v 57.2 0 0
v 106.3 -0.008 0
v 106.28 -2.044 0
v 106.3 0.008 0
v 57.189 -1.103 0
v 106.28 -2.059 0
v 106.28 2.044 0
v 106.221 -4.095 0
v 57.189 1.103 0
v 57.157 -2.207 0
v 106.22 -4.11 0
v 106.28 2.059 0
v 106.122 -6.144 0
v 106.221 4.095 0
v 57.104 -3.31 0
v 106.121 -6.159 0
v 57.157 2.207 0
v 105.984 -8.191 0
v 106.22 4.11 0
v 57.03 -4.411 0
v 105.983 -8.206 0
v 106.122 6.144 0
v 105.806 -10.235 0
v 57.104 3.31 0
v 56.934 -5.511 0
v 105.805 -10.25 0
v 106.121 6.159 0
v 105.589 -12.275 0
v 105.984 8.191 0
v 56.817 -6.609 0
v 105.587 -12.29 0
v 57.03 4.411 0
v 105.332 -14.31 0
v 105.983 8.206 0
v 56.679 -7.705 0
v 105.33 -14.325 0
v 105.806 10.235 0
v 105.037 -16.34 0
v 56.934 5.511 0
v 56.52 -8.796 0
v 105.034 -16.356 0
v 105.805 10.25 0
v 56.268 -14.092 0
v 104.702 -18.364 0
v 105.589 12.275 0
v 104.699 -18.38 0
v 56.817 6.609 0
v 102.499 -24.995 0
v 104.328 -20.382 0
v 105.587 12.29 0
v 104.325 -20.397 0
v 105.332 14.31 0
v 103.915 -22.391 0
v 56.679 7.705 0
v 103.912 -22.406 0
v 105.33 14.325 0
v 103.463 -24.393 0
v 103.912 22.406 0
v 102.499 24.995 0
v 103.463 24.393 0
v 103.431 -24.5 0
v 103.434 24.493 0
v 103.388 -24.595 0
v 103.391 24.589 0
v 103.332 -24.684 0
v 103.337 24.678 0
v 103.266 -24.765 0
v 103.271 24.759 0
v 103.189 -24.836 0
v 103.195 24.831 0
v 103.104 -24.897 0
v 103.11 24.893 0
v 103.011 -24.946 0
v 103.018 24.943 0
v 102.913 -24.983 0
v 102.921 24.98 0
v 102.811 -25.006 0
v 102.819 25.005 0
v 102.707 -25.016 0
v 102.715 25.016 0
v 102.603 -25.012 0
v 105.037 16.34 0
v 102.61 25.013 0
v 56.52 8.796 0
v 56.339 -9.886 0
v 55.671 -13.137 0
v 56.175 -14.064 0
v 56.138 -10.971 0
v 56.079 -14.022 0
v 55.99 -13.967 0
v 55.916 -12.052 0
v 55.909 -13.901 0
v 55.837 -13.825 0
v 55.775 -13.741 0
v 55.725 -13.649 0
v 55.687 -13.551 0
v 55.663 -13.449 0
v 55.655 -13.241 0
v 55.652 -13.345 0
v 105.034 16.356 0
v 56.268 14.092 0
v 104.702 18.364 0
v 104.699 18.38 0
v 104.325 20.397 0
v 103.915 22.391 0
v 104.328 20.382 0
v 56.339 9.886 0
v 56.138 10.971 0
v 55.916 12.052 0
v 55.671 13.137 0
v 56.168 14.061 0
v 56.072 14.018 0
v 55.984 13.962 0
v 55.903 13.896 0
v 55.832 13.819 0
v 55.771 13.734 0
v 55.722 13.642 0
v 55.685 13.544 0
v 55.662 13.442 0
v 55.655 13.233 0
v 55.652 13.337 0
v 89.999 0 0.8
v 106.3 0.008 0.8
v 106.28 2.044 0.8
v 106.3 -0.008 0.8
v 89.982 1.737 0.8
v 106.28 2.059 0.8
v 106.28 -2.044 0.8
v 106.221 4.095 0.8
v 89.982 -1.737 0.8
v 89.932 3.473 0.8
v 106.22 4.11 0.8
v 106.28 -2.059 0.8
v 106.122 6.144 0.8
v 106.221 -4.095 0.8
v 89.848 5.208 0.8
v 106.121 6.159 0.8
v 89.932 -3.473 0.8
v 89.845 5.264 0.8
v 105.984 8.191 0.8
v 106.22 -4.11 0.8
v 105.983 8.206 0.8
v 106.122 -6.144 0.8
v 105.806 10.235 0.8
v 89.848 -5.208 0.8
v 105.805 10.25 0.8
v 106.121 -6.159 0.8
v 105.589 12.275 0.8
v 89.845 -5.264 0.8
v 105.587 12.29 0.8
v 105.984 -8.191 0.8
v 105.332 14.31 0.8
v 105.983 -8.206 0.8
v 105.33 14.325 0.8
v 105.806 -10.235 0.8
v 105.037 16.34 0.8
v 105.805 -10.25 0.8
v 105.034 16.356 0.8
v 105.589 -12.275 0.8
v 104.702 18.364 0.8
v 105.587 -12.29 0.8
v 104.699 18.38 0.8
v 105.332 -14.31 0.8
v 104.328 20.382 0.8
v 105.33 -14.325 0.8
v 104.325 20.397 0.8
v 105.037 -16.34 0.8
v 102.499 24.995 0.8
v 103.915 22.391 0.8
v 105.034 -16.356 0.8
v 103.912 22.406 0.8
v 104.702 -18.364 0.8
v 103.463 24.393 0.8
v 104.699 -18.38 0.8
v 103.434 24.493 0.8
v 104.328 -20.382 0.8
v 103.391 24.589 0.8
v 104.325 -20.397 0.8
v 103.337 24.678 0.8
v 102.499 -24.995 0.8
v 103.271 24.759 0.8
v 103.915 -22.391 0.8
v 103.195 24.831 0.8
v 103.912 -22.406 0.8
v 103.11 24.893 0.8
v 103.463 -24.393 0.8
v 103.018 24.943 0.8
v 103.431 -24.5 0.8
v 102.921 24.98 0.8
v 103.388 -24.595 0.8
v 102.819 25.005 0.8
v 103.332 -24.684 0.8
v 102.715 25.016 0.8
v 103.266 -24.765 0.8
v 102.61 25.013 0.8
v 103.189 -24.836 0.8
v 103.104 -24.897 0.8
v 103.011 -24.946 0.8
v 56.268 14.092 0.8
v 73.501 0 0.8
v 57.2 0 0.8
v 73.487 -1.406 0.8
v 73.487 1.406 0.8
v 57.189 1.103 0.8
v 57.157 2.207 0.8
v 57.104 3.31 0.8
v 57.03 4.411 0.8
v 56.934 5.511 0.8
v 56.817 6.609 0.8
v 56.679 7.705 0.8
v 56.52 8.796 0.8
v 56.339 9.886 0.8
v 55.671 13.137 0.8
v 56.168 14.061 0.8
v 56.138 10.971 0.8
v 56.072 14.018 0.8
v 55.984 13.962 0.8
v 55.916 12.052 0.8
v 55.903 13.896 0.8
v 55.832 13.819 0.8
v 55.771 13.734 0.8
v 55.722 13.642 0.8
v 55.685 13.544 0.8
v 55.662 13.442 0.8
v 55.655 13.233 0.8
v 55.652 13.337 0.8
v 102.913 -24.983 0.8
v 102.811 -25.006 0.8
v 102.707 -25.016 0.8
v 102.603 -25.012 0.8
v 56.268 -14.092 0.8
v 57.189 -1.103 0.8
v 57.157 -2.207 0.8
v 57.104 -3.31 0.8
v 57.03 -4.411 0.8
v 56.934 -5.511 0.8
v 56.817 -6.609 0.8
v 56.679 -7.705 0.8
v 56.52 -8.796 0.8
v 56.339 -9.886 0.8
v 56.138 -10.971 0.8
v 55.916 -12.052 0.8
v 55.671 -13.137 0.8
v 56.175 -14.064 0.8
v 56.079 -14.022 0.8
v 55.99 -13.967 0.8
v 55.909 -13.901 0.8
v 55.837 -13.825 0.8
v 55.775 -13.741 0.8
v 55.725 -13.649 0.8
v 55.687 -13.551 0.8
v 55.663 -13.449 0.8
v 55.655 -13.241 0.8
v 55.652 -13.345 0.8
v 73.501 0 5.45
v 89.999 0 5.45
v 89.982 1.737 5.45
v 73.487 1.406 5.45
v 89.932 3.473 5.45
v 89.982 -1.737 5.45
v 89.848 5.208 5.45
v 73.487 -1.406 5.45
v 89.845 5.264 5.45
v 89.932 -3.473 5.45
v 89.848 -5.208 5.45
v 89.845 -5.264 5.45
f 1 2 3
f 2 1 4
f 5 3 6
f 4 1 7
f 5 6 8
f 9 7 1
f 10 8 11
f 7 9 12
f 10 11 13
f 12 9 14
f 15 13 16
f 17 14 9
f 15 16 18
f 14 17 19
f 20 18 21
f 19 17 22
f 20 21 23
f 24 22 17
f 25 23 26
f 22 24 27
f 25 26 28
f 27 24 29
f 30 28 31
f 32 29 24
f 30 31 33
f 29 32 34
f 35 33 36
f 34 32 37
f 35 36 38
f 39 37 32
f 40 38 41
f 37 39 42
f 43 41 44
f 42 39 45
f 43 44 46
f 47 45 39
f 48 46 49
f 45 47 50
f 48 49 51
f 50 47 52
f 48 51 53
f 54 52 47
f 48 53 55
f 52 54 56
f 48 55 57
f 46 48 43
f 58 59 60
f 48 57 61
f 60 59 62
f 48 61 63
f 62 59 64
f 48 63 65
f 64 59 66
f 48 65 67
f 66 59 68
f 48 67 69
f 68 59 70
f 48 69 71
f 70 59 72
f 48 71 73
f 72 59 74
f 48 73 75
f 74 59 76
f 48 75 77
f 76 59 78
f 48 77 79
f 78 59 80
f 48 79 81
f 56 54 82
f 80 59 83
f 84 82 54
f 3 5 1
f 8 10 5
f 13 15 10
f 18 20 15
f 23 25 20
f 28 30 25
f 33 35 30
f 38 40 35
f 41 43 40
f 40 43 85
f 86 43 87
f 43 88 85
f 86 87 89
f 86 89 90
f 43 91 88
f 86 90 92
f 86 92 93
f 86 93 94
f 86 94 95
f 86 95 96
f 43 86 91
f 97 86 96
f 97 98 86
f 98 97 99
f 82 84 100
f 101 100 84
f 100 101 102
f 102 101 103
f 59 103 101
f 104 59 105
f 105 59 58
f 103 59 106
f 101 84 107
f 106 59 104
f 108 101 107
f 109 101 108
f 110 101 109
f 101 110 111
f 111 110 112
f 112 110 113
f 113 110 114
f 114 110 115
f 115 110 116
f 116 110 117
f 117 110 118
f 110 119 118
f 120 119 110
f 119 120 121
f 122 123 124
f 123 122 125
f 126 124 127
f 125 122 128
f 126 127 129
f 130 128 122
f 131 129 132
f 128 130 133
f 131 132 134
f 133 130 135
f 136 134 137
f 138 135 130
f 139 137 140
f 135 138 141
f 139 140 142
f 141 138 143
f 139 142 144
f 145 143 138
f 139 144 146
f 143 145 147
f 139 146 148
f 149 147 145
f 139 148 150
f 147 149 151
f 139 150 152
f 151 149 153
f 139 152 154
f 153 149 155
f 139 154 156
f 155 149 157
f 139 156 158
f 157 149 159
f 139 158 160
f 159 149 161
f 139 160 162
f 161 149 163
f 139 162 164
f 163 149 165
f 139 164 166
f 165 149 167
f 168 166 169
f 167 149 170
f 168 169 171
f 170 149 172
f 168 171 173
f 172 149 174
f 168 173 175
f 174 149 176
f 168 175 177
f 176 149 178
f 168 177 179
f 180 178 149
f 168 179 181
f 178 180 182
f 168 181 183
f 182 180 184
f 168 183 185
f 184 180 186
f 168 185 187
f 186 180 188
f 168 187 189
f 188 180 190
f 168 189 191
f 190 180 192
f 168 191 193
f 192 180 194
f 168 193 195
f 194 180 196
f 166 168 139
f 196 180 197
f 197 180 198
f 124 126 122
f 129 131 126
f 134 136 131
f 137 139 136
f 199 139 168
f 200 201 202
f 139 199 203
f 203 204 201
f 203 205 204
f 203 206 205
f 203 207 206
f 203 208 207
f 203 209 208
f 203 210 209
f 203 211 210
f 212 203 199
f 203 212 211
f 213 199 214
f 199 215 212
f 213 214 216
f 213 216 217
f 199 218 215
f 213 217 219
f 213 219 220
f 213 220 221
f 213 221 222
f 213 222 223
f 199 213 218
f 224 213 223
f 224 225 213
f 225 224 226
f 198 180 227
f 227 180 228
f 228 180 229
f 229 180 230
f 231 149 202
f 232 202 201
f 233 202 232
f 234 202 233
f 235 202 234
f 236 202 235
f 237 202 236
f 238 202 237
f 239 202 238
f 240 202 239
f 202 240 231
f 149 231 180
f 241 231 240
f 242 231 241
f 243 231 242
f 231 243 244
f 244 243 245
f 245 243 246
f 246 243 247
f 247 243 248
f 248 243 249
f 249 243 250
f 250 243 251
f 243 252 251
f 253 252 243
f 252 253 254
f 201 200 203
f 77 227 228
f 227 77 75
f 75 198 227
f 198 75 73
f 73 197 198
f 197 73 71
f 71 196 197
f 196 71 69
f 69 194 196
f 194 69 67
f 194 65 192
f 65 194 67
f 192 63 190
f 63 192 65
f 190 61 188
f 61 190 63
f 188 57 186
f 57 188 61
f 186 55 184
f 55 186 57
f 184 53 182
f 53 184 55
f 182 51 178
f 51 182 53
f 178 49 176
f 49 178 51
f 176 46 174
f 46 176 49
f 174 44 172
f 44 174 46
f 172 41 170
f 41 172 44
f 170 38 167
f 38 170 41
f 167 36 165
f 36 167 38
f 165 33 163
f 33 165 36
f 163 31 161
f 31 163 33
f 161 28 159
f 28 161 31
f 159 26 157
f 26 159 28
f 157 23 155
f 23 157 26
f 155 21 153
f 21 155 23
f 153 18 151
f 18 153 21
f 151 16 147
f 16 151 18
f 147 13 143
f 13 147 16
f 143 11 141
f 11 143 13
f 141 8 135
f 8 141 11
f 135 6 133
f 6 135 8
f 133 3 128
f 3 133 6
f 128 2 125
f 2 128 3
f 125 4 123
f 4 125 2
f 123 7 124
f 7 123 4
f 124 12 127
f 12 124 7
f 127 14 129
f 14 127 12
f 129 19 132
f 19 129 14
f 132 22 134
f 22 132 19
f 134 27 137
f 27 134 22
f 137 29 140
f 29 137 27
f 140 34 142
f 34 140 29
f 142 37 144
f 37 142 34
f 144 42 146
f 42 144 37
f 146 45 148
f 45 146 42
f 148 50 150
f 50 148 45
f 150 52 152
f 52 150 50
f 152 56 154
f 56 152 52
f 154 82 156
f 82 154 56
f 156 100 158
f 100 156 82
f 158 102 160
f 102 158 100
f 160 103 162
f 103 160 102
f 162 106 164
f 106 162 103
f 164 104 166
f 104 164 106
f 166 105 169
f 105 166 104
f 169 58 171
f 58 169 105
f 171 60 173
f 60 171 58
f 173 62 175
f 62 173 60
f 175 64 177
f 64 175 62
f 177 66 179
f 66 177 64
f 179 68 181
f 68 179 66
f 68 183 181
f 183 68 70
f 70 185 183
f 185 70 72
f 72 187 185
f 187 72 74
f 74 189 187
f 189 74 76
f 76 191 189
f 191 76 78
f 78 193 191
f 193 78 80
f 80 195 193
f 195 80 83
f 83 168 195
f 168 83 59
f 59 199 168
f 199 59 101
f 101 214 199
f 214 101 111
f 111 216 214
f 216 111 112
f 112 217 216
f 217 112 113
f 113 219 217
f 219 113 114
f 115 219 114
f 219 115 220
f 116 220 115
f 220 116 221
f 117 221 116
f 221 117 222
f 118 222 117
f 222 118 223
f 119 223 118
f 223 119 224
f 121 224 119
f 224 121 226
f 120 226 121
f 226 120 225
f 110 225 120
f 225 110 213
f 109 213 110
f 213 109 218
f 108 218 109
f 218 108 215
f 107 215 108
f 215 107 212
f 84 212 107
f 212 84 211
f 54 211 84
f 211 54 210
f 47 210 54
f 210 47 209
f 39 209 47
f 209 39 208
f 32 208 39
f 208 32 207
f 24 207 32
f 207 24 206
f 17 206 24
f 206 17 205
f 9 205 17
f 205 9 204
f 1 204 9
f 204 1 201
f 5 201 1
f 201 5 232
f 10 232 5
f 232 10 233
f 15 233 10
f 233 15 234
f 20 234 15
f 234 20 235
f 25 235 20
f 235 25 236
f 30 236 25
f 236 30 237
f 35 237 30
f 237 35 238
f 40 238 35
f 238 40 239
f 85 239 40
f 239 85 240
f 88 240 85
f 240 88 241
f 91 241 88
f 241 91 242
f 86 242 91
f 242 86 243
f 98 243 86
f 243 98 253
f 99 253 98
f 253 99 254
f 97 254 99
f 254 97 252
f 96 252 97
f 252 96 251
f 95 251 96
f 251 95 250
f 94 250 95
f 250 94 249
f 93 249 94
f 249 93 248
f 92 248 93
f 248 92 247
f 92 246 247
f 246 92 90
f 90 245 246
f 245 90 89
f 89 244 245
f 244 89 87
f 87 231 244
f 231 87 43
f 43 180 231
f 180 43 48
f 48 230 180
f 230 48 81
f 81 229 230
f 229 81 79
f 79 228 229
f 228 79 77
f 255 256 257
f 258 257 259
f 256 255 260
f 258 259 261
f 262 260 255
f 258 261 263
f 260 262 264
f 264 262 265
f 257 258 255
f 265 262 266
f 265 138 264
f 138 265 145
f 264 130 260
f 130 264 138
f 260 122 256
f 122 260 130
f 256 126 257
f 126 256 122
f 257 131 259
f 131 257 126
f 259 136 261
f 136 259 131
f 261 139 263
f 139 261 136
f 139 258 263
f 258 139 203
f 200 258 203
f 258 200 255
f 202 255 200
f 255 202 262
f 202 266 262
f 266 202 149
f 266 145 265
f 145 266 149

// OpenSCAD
// Gen-CP — bobbin BASE (bottom flange + hub). Print x12, flange down. Wind 26 AWG x 294 t around
// the hub with the LID glued on (coil_lid.stl). Copper lives ONLY between the flanges (no proud winds).
include <parameters.scad>;
$fn = 48;
module sector_2d(r_in, r_out, ang) {
    polygon([
        for (a = [-ang/2 : ang/24 : ang/2]) [r_in*cos(a), r_in*sin(a)],
        for (a = [ang/2 : -ang/24 : -ang/2]) [r_out*cos(a), r_out*sin(a)]
    ]);
}
module footprint_2d() { offset(r=wall) sector_2d(coil_id_r, coil_od_r, span_deg); }
module hub_2d()       { offset(delta=-coil_core_inset) sector_2d(coil_id_r, coil_od_r, span_deg); }

union() {
    linear_extrude(flange_t) footprint_2d();
    translate([0, 0, flange_t - 0.01]) linear_extrude(former_web + 0.01) hub_2d();
}
